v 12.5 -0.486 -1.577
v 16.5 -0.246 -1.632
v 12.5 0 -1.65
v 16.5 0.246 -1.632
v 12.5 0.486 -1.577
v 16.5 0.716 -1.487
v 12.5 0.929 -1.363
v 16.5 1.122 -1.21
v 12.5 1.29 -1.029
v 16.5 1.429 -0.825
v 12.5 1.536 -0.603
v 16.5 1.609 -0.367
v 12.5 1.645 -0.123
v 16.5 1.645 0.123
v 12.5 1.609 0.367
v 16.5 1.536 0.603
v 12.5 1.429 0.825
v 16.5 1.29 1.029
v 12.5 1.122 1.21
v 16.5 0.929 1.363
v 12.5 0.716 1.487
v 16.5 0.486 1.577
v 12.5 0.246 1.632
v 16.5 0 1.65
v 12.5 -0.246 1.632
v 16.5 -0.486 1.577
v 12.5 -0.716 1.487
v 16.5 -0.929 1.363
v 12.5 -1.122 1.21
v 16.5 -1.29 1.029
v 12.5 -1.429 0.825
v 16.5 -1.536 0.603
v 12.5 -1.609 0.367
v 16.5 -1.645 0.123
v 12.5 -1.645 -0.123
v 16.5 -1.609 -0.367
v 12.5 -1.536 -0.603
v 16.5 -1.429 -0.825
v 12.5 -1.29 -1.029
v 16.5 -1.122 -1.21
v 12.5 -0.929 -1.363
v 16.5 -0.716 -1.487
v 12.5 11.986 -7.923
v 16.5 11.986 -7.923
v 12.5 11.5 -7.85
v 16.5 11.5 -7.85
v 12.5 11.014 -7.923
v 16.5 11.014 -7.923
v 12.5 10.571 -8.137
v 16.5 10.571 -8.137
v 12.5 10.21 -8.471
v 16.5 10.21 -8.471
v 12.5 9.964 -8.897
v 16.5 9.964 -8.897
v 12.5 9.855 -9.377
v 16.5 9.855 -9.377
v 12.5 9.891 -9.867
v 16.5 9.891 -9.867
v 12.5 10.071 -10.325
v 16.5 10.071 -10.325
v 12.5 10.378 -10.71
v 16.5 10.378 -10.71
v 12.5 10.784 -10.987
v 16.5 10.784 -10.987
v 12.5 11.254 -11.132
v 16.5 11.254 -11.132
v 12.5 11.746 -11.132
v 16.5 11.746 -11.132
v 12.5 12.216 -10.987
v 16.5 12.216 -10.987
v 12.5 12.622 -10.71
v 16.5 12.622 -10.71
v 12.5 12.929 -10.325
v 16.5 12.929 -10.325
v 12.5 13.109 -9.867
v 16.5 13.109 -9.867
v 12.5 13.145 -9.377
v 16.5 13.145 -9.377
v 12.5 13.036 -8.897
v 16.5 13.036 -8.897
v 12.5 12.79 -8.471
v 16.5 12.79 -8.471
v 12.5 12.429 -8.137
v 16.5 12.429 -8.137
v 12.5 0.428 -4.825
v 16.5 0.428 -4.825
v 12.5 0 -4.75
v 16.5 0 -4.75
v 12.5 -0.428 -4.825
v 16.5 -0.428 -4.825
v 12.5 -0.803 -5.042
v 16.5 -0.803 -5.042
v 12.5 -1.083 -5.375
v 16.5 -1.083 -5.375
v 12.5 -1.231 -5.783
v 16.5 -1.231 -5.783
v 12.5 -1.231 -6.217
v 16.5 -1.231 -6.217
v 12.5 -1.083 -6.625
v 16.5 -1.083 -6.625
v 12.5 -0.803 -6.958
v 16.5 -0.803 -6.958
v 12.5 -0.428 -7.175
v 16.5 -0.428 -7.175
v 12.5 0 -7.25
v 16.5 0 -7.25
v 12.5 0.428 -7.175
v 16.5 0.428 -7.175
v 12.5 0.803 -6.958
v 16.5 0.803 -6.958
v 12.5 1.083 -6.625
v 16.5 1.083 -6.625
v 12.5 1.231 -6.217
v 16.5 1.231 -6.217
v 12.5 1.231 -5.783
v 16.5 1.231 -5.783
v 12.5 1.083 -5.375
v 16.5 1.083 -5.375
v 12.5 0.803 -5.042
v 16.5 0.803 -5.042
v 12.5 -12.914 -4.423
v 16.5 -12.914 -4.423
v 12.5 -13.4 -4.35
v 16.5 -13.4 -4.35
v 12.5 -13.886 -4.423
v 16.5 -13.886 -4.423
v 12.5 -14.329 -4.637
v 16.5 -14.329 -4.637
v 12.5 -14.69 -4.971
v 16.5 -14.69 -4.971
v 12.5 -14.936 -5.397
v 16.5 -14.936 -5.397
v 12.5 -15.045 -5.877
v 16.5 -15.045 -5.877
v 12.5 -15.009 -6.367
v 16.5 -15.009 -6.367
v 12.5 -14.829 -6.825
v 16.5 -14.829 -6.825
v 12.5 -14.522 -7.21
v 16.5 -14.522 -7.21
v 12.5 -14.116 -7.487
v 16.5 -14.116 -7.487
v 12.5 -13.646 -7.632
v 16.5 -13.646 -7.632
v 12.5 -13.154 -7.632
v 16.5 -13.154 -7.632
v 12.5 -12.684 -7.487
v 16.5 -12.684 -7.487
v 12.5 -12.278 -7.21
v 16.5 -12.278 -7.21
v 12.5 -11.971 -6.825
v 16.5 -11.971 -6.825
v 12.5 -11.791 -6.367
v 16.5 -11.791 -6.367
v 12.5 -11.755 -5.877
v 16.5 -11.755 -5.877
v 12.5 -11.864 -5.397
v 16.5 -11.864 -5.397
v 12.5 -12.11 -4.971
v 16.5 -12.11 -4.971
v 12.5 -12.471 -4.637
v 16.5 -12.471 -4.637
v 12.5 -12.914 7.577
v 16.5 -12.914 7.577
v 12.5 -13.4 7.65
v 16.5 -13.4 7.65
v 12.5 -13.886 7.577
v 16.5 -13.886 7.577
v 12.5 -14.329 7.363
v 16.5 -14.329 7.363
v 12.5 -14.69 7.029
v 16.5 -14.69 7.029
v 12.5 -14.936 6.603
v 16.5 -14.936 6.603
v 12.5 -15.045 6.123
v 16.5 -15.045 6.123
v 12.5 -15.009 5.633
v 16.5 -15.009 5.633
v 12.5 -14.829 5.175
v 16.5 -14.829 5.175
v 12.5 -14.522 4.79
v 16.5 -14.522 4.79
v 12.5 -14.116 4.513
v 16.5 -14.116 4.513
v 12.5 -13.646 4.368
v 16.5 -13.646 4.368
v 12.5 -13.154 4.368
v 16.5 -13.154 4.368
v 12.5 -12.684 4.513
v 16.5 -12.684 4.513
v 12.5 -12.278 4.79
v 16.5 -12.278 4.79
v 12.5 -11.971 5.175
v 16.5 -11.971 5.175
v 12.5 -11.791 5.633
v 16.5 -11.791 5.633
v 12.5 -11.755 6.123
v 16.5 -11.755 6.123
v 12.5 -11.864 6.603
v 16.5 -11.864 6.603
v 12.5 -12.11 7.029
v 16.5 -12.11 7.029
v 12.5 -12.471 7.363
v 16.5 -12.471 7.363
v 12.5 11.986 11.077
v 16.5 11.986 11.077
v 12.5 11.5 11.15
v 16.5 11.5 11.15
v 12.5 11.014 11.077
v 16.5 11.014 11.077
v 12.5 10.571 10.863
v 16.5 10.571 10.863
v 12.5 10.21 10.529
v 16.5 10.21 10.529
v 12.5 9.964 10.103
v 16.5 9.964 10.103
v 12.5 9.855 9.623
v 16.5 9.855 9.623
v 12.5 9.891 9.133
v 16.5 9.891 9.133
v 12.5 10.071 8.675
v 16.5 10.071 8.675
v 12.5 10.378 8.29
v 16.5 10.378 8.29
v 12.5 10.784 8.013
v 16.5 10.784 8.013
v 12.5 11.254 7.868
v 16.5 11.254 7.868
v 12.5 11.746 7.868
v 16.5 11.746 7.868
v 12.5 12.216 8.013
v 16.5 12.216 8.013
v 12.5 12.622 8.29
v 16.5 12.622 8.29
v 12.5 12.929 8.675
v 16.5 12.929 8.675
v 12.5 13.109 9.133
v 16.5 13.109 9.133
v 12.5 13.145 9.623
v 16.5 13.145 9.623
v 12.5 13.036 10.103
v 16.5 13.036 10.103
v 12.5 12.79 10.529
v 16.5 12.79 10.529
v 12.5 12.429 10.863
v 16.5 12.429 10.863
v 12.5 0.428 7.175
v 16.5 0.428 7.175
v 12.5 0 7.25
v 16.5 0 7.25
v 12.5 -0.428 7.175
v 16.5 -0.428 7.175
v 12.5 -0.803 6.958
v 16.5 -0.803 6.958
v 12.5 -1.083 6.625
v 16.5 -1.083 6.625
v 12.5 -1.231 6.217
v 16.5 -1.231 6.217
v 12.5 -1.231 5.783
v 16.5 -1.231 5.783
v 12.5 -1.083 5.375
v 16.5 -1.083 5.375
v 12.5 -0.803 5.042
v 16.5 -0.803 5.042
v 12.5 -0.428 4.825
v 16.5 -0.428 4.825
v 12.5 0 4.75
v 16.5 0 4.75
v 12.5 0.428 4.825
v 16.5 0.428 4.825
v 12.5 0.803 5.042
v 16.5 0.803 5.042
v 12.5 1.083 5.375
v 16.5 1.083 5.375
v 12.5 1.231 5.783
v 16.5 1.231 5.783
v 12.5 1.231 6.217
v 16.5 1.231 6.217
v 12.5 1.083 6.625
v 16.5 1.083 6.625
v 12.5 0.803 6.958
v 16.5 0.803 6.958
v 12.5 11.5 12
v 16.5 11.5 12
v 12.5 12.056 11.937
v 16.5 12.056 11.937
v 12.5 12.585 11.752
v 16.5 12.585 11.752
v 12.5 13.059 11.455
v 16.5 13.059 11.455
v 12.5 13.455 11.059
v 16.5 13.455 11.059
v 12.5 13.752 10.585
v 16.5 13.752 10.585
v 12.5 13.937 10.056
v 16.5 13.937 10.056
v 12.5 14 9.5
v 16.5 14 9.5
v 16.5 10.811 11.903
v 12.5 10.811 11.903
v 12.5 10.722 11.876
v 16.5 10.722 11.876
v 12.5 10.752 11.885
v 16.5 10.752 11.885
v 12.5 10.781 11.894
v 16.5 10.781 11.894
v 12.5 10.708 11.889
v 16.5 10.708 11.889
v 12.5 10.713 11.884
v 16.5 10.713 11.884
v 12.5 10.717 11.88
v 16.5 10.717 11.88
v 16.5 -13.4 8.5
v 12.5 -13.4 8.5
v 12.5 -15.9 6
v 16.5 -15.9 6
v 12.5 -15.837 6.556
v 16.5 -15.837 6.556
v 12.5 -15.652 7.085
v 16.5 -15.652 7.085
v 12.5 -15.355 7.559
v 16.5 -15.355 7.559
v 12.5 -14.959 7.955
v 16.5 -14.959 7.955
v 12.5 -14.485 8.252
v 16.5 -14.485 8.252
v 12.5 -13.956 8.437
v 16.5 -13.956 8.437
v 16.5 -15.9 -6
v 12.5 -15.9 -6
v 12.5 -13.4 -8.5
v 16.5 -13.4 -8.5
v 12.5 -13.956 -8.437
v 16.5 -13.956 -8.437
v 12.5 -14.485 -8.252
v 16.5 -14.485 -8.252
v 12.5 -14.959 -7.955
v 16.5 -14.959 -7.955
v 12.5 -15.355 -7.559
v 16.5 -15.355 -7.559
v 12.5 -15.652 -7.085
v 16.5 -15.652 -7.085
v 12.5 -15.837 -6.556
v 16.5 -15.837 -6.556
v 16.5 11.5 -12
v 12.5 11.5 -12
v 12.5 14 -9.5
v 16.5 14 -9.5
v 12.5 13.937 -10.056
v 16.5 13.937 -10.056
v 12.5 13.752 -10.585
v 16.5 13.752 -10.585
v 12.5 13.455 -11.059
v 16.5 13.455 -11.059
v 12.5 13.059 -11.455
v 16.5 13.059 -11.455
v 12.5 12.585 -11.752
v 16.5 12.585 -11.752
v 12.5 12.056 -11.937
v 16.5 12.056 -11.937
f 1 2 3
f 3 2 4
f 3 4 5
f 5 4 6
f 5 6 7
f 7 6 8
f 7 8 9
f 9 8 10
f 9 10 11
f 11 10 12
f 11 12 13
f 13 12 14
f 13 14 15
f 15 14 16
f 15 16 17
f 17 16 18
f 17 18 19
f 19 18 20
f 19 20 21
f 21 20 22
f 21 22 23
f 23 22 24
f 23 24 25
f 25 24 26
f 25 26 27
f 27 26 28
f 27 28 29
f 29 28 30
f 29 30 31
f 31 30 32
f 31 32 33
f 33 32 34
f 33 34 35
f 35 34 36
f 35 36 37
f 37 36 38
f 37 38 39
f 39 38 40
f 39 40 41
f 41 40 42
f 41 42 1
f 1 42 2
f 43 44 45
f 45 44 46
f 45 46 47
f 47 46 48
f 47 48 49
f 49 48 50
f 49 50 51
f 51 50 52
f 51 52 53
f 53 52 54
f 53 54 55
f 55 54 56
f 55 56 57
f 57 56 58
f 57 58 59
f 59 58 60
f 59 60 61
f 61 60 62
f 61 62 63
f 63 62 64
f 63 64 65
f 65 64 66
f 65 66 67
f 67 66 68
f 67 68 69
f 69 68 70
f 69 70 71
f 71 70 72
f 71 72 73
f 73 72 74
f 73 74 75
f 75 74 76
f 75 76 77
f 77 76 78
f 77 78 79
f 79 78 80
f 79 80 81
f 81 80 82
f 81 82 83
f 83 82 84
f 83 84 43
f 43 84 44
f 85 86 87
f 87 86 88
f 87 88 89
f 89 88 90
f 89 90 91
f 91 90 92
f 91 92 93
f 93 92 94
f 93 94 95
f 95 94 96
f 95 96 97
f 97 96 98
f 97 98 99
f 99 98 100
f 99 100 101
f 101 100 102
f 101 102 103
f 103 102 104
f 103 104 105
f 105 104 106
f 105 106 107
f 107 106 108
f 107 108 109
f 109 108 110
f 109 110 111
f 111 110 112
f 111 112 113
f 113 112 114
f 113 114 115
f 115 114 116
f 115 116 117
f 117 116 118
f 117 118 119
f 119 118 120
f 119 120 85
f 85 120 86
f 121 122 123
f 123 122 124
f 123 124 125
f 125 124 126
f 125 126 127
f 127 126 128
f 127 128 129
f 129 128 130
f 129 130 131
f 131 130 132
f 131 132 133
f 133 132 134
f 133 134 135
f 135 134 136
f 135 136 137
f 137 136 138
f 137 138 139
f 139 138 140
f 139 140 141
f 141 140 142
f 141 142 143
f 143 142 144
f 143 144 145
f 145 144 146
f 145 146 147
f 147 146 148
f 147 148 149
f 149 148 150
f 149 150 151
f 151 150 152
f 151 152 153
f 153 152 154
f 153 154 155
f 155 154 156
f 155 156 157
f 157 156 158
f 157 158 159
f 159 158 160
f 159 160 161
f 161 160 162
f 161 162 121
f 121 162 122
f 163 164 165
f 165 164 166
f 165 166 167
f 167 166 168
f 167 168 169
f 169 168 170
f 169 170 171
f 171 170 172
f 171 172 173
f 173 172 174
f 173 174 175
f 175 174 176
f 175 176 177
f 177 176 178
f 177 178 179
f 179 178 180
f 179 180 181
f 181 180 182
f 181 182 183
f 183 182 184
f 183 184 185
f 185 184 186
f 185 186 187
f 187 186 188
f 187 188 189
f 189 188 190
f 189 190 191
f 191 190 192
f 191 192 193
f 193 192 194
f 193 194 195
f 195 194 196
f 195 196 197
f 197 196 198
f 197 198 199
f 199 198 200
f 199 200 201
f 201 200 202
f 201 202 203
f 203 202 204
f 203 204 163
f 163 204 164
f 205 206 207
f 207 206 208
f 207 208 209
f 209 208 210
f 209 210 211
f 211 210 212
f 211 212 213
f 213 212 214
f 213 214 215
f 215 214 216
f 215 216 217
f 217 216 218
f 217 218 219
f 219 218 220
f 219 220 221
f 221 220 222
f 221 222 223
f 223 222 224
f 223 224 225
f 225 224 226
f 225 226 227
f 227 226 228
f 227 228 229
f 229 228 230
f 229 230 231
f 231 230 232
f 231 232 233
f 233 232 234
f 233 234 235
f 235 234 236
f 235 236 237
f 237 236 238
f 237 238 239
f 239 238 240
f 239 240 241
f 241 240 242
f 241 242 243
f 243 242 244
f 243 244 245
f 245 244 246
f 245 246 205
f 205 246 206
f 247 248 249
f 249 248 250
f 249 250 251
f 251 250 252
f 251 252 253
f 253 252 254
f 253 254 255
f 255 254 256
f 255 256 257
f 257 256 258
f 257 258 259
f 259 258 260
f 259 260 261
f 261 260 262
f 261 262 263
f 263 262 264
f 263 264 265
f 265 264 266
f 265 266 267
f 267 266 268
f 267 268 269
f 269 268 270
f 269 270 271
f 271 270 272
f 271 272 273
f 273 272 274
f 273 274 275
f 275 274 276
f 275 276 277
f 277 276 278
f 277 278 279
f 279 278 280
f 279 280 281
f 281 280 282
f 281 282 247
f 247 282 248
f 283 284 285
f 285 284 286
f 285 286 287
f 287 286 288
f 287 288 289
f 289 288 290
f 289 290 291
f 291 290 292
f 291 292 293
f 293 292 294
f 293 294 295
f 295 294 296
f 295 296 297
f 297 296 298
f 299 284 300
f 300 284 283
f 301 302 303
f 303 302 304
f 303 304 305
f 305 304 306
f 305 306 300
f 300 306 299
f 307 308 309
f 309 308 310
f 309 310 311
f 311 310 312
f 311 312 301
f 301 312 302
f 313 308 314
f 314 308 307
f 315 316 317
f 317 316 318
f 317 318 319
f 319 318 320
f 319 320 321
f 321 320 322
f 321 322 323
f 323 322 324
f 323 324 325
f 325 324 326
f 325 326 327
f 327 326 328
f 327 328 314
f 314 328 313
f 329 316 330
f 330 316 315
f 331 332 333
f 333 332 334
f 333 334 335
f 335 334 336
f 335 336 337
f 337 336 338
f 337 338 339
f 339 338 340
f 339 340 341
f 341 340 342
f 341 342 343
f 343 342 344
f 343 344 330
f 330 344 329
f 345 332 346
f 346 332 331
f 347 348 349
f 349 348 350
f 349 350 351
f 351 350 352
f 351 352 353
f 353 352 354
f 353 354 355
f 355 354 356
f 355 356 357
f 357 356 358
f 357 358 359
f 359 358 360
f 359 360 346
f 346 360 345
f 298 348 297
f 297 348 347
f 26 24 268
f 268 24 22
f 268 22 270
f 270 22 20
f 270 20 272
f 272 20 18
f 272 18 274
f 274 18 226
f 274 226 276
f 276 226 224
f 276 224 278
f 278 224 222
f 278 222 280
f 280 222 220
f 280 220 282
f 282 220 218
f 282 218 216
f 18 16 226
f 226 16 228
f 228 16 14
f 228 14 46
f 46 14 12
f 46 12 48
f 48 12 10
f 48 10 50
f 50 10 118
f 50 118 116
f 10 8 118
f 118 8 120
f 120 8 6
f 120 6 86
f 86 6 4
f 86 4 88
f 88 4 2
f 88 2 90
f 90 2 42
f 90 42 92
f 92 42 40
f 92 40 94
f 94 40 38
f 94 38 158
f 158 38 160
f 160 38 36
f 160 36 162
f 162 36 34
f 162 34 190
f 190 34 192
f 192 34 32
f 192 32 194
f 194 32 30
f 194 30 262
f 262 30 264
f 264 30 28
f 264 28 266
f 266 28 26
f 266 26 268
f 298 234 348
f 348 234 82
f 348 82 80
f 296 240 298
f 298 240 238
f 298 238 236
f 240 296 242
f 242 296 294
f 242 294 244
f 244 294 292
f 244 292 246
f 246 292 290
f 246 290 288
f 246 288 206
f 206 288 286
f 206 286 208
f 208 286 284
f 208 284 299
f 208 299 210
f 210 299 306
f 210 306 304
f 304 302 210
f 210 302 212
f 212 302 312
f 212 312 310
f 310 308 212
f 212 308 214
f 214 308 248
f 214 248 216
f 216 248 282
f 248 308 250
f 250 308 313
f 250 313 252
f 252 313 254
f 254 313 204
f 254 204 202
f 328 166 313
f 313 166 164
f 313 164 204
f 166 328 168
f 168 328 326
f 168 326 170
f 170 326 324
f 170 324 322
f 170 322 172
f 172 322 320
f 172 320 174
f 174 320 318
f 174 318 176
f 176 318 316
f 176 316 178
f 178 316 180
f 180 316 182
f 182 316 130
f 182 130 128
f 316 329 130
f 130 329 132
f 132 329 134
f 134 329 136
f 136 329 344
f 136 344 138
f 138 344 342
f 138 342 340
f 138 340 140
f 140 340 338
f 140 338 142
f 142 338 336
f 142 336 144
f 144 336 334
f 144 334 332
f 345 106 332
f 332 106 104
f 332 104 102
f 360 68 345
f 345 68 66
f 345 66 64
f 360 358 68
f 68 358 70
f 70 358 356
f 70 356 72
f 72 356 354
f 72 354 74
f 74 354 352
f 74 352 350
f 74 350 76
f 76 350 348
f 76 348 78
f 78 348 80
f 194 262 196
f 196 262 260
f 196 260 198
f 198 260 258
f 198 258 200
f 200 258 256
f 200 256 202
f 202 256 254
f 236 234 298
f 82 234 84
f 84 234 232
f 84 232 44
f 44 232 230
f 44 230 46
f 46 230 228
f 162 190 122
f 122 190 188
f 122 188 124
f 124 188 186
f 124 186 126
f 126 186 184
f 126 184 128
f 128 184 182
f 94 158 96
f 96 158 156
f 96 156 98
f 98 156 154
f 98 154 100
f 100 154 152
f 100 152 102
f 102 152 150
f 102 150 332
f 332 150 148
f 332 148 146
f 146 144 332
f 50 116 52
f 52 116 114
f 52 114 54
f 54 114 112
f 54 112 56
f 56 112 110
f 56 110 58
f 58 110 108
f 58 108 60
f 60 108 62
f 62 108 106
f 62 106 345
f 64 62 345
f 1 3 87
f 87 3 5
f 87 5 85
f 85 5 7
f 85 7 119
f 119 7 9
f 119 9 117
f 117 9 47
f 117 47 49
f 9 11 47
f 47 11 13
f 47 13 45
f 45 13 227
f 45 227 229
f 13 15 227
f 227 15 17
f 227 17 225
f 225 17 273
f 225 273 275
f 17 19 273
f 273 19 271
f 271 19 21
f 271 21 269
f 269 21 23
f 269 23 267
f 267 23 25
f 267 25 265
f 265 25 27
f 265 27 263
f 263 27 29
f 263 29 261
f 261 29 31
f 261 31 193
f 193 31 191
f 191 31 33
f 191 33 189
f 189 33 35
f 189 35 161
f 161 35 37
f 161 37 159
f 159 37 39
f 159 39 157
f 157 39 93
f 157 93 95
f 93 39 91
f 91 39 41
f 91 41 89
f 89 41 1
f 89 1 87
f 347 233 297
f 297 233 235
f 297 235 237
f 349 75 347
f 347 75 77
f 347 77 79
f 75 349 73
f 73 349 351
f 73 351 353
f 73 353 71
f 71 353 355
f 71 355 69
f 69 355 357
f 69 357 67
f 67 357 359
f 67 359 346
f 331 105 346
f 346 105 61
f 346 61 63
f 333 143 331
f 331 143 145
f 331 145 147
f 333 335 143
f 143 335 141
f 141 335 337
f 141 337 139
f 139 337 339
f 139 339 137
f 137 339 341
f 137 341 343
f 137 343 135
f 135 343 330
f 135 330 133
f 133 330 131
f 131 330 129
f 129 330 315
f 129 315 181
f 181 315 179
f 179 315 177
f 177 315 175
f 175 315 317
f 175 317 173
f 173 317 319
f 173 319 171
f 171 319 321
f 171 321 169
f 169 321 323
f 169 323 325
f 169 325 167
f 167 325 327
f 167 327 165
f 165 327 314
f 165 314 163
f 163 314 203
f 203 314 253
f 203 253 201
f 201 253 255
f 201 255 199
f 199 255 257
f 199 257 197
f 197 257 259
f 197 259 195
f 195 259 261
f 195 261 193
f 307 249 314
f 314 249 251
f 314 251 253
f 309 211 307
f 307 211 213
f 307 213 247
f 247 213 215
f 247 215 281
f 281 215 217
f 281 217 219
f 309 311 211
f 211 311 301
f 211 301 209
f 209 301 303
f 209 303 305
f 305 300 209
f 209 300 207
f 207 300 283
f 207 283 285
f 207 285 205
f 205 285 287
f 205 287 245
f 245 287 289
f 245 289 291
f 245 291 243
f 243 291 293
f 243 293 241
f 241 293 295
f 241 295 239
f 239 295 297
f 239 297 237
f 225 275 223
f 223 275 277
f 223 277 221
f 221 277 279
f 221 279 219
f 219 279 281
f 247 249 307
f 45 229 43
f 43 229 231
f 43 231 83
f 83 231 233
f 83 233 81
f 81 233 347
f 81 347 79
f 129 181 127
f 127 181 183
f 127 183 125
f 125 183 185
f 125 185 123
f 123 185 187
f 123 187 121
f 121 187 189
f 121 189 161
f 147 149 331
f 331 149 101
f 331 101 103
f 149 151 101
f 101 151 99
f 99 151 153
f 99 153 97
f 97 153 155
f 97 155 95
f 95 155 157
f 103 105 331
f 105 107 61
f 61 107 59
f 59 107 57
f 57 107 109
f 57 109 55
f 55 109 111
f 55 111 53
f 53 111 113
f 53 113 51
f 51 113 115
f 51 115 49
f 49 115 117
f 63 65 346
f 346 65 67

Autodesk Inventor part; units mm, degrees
ref_plane "YZ Plane" through (0, 0, 0) normal (1, 0, 0) x (0, 1, 0)
ref_plane "XZ Plane" through (0, 0, 0) normal (0, 1, 0) x (-1, 0, 0)
ref_plane "XY Plane" through (0, 0, 0) normal (0, 0, 1) x (1, 0, 0)
sketch "スケッチ2" plane through (0, 0, 0) normal (0, 1, 0) x (-1, 0, 0)
  line L0 (-32.5, -11.25) -> (32.5, -11.25)
  line L1 (32.5, -11.25) -> (32.5, 11.25)
  line L2 (32.5, 11.25) -> (-32.5, 11.25)
  line L3 (-32.5, 11.25) -> (-32.5, -11.25)
  line L4 (-32.5, -11.25) -> (32.5, 11.25) construction
  line L5 (32.5, -11.25) -> (-32.5, 11.25) construction
  line L6 (-30, -8.75) -> (30, -8.75)
  line L7 (30, -8.75) -> (30, 8.75)
  line L8 (30, 8.75) -> (-30, 8.75)
  line L9 (-30, 8.75) -> (-30, -8.75)
  line L10 (-30, -8.75) -> (30, 8.75) construction
  line L11 (30, -8.75) -> (-30, 8.75) construction
  circle A0 centre (30, 8.75) radius 2.5
  circle A1 centre (30, -8.75) radius 2.5
  circle A2 centre (-30, 8.75) radius 2.5
  circle A3 centre (-30, -8.75) radius 2.5
  line L12 (-115, -18.25) -> (115, -18.25)
  line L13 (115, -18.25) -> (115, 18.25)
  line L14 (115, 18.25) -> (-115, 18.25)
  line L15 (-115, 18.25) -> (-115, -18.25)
  line L16 (-115, -18.25) -> (115, 18.25) construction
  line L17 (115, -18.25) -> (-115, 18.25) construction
  line L18 (-95, -18.25) -> (95, -18.25)
  line L19 (95, -18.25) -> (95, 18.25)
  line L20 (95, 18.25) -> (-95, 18.25)
  line L21 (-95, 18.25) -> (-95, -18.25)
  line L22 (-95, -18.25) -> (95, 18.25) construction
  line L23 (95, -18.25) -> (-95, 18.25) construction
  point P0 (0, 0)
  dimension "d10" = 65
  dimension "d11" = 22.5
  dimension "d12" = 60
  dimension "d13" = 17.5
  dimension "d14" = 230
  dimension "d15" = 36.5
  dimension "d16" = 190
sketch "スケッチ4" plane through (0, 0, 0) normal (1, 0, 0) x (0, 1, 0)
  point P0 (0, 0)
sketch "スケッチ5" plane through (0, 0, 0) normal (1, 0, 0) x (0, 1, 0)
  circle A0 centre (0, 0) radius 18.25
  line L0 (0, 0) -> (0, 6)
  line L1 (0, 6) -> (0, -6)
  circle A1 centre (0, 6) radius 3
  circle A2 centre (0, -6) radius 9
  circle A3 centre (0, 6) radius 9
  circle A4 centre (0, -6) radius 3
  line L2 (0, 6) -> (5.2915, 0)
  circle A5 centre (5.2915, 0) radius 5
  circle A6 centre (5.2915, 0) radius 4.5
  circle A7 centre (5.2915, 0) radius 5.5
  line L3 (0, 0) -> (0, 11.25)
  line L4 (0, 11.25) -> (0, -11.25)
  line L5 (5.2915, 5.5) -> (5.2915, -5.5)
  line L6 (0, 11.25) -> (-1.2, 11.25)
  line L7 (-1.2, 11.25) -> (-1.2, -11.25)
  line L8 (-1.2, -11.25) -> (0, -11.25)
  line L9 (-1.2, 11.25) -> (-9.2, 11.25)
  line L10 (-1.2, -11.25) -> (-9.2, -11.25)
  line L11 (-9.2, -11.25) -> (-9.2, 11.25)
  line L12 (-9.2, 11.25) -> (-10.4, 11.25)
  line L13 (-10.4, 11.25) -> (-10.4, -11.25)
  line L14 (-10.4, -11.25) -> (-9.2, -11.25)
  circle A8 centre (0, 0) radius 16
  line L15 (0, 11.25) -> (1.5, 11.25)
  line L16 (1.5, 11.25) -> (1.5, -11.25)
  line L17 (1.5, -11.25) -> (0, -11.25)
  line L18 (5.2915, 5.5) -> (1.5, 5.5)
  line L19 (5.2915, -5.5) -> (1.5, -5.5)
  circle A9 centre (5.2915, 0) radius 6.6802
  point P0 (0, 1.5)
  point P1 (0, -1.5)
  point P2 (1.5, -3.9843)
  point P3 (1.5, 3.9843)
  dimension "d28" = 36.5
  dimension "d29" = 6
  dimension "d30" = 12
  dimension "d31" = 6
  dimension "d32" = 18
  dimension "d33" = 8
  dimension "d34" = 9
  dimension "d35" = 11
  dimension "d36" = 11.25
  dimension "d37" = 22.5
  dimension "d39" = 1.2
  dimension "d40" = 8
  dimension "d41" = 1.2
  dimension "d42" = 32
  dimension "d43" = 1.5
ref_plane "作業平面1" through (16.5, 5.2915, 0) normal (1, 0, 0) x (0, 0, 1)
sketch "スケッチ6" plane through (16.5, 5.2915, 0) normal (1, 0, 0) x (0, 0, 1)
  line L0 (0, 5.2915) -> (6, 5.2915)
  line L1 (-11.25, 5.2915) -> (11.25, 5.2915) projected
  line L2 (6, 5.2915) -> (-6, 5.2915)
  circle A0 centre (6, 5.2915) radius 1.25
  circle A1 centre (-6, 5.2915) radius 1.25
  circle A2 centre (0, 5.2915) radius 16
  circle A3 centre (0, 0) radius 5
  line L3 (0, 0) -> (0, 3)
  line L4 (0, 3) -> (0, -5.5)
  arc A4 (-5.5, 0) -> (5.5, 0) centre (0, 0) ccw projected
  line L5 (0, 3) -> (1, 3)
  line L6 (1, 3) -> (-1, 3)
  line L7 (-1, 3) -> (-1, -5.4083)
  line L8 (1, 3) -> (1, -5.4083)
  circle A5 centre (6, 5.2915) radius 9
  circle A6 centre (-6, 5.2915) radius 9
  line L9 (0, 5.2915) -> (0, -2.7085)
  circle A7 centre (0, -2.7085) radius 8
  circle A8 centre (6, 5.2915) radius 10
  circle A9 centre (-6, 5.2915) radius 10
  line L10 (0, 5.2915) -> (0, -5.7085)
  line L11 (0, -5.7085) -> (-11.619, -5.7085)
  line L12 (0, -5.7085) -> (11.619, -5.7085)
  line L13 (0, -5.7085) -> (9.5, -5.7085)
  line L14 (9.5, -5.7085) -> (-9.5, -5.7085)
  circle A10 centre (0, 5.2915) radius 18
  line L15 (1, -5.4083) -> (1, -8.2085)
  line L16 (-1, -5.4083) -> (-1, -8.2085)
  line L17 (0, 5.2915) -> (0, 6.4915)
  line L18 (0, 6.4915) -> (0, 14.4915)
  line L19 (0, 14.4915) -> (0, 15.6915)
  line L20 (0, 15.6915) -> (-11.25, 15.6915)
  line L21 (-11.25, 15.6915) -> (11.25, 15.6915)
  line L22 (11.25, 15.6915) -> (11.25, 14.4915)
  line L23 (11.25, 14.4915) -> (0, 14.4915)
  line L24 (-11.25, 14.4915) -> (-11.25, 15.6915)
  line L25 (0, 14.4915) -> (-11.25, 14.4915)
  line L26 (0, 15.6915) -> (8.75, 15.6915)
  line L27 (8.75, 15.6915) -> (-8.75, 15.6915)
  line L28 (11.25, 15.6915) -> (11.25, 17.1915)
  line L29 (11.25, 17.1915) -> (-11.25, 17.1915)
  line L30 (-11.25, 17.1915) -> (-11.25, 15.6915)
  line L31 (6, 17.1915) -> (6, 18.6915)
  line L32 (-6, 17.1915) -> (-6, 18.6915)
  circle A11 centre (6, 18.6915) radius 2.5
  circle A12 centre (-6, 18.6915) radius 2.5
  line L33 (6, 21.1915) -> (-6, 21.1915)
  line L34 (9.5, -5.7085) -> (12, -5.7085)
  line L35 (-9.5, -5.7085) -> (-12, -5.7085)
  line L36 (6, 18.6915) -> (8.5, 18.6915)
  line L37 (-6, 18.6915) -> (-8.5, 18.6915)
  circle A13 centre (0, 0) radius 4.5
  circle A14 centre (-6, 5.2915) radius 1.5
  circle A15 centre (6, 5.2915) radius 1.5
  circle A16 centre (6, 18.6915) radius 1.65
  circle A17 centre (-6, 18.6915) radius 1.65
  line L38 (9.5, -5.7085) -> (9.5, -6.2085)
  line L39 (9.5, -6.2085) -> (-9.5, -6.2085)
  line L40 (-9.5, -6.2085) -> (-9.5, -5.7085)
  circle A18 centre (-9.5, -6.2085) radius 1.65
  circle A19 centre (9.5, -6.2085) radius 1.65
  circle A20 centre (9.5, -6.2085) radius 2.5
  circle A21 centre (-9.5, -6.2085) radius 2.5
  line L41 (-12, -6.2085) -> (-8.5, 18.6915)
  line L42 (12, -6.2085) -> (8.5, 18.6915)
  line L43 (9.5, -8.7085) -> (-9.5, -8.7085)
  line L44 (1, -8.7085) -> (1, -8.0358)
  line L45 (-1, -8.7085) -> (-1, -8.2085)
  point P0 (1, -4.3875)
  point P1 (-1, -4.3875)
  point P2 (-4.4567, 20.6583)
  point P3 (-8.495, 18.8501)
  point P4 (4.4567, 20.6583)
  point P5 (8.495, 18.8501)
  point P6 (1.7861, 21.1915)
  point P7 (-1.7861, 21.1915)
  point P8 (11.9031, -5.5193)
  point P9 (11.8759, -5.4306)
  point P10 (11.8887, -5.4164)
  dimension "d54" = 6
  dimension "d55" = 12
  dimension "d56" = 2.5
  dimension "d57" = 2.5
  dimension "d58" = 32
  dimension "d59" = 10
  dimension "d60" = 3
  dimension "d61" = 1
  dimension "d62" = 2
  dimension "d65" = 18
  dimension "d66" = 18
  dimension "d67" = 8
  dimension "d68" = 11
  dimension "d69" = 9.5
  dimension "d70" = 19
  dimension "d73" = 36
  dimension "d76" = 1.2
  dimension "d77" = 8
  dimension "d78" = 1.2
  dimension "d79" = 8.75
  dimension "d80" = 17.5
  dimension "d81" = 1.5
  dimension "d82" = 1.5
  dimension "d83" = 5
  dimension "d84" = 5
  dimension "d97" = 3
  dimension "d98" = 3
  dimension "d109" = 3.3
  dimension "d110" = 3.3
  dimension "d111" = 0.5
  dimension "d112" = 3.3
  dimension "d113" = 3.3
  dimension "d114" = 5
  dimension "d115" = 5
extrude "押し出し11" add sketch "スケッチ6" against normal blind 4 contours L17 L18 A6 L0 | A7 A5 L1 | A7 A6 A3 L9 | L0 A6 A7 | L9 A3 A5 A7 | L1 A5 L18 L17 | A6 A5 A9 L0 | L0 A9 A7 A6 | A5 A7 A8 L1 | L1 A8 A6 A5 | L9 A13 A5 A3 | A3 A6 A13 L9 | A7 A9 A3 A6 | A5 A3 A8 A7 | A9 A5 L42 L1 A15 L0 | L0 A15 L1 L42 A5 A7 A9 | L18 A9 A5 | A6 A8 L18 | A8 A7 A6 L41 L1 A14 | L1 A14 L41 A6 A8 | A3 A9 A13 A6 | A5 A13 A8 A3 | A13 A6 L8 L5 L9 | L9 L6 L7 A5 A13 | A7 A5 A3 A9 | A8 A3 A6 A7 | A15 L1 A0 L0 | L0 A0 L1 A15 | A9 A8 L23 L42 A5 | A6 L41 L25 A9 A8 | L18 L23 A8 | A9 L25 L18 | A14 L1 A1 | L1 A1 A14 | A3 A5 A13 A9 | A13 A9 L8 A6 | A8 A13 A6 A3 | A5 L7 A8 A13 | L5 L8 A6 L4 L3 | L3 L4 A5 L7 L6 | A7 A21 A9 L41 A6 | A6 A4 A9 A21 A7 | L23 L19 L21 L42 A8 | A8 L42 L23 | L25 L41 A9 | A9 L41 L20 L19 L25 | A13 A5 L8 A9 | L8 A9 A5 A6 | A6 A13 A9 A3 | A3 A9 A4 A6 | A8 L7 A6 A13 | A5 A6 A8 L7 | A7 A20 A8 A4 A5 | A5 L42 A8 A20 A7 | A21 A9 A7 | A7 A9 A21 | L20 L41 L29 A12 A11 L42 L21 | A5 A4 A8 A3 | A3 A8 A13 A5 | L8 A5 A9 | A5 A9 L4 | L4 A8 A6 | A9 A13 L7 A3 | A3 L7 A4 A9 | A6 L7 A9 A13 | A8 A6 L7 | A20 A8 A7 | A7 A8 A20 | A9 A21 A2 L41 | A4 L16 L11 A21 A9 | A9 A21 L11 A7 | A7 L11 A18 A2 A21 A9 | A8 A4 L8 A3 | A3 L8 A13 A8 | A13 A8 L8 A5 | L8 A8 A9 A5 | A8 L8 A13 L4 | A9 L7 A6 A8 | L4 A13 L7 A9 | L7 A13 L4 A3 | A3 L4 A4 L7 | A9 L7 A13 | A8 A20 L12 L15 A4 | L42 A2 A20 A8 | A8 A20 A2 L12 A19 A7 | A7 L12 A20 A8 | A2 A21 L41 | A4 L10 L11 L16 | L11 A21 L39 A7 | A7 L39 A18 L11 | L11 L16 L39 A21 | A2 L35 L41 A21 | L29 A11 L42 | L41 A12 L29 | L8 A4 L4 A3 | A3 L4 A13 L8 | A13 L8 A8 | L15 L12 L10 A4 | L12 A19 L39 A7 | A7 L39 A20 L12 | A20 L42 L34 A2 | A20 L39 L15 L12 | L11 L12 L15 L39 L16 | L39 A21 A7 | A7 A21 A2 A18 L39 | L39 L16 L45 L43 A7 A21 | L11 A18 A2 | A2 A18 A21 L41 L35 | A11 L29 A16 | L29 A16 L36 A11 | L36 A16 A2 A11 | A12 L37 A17 L29 | L29 A17 A12 | A12 A2 A17 L37 | L39 A19 A2 A20 A7 | A7 A20 L39 | L34 L42 A20 A2 A19 | A2 A19 L12 | A20 A7 L43 L44 L15 L39 | L39 L15 L44 L43 L45 L16 | A7 L43 A2 A21 | A2 A16 A11 | A11 A2 A16 L29 | L29 A12 A2 L33 A11 | L29 A17 A2 A12 | A12 A2 A17 | A20 A2 L43 A7 | A2 L43 A21 | A11 A2 L33 | L33 A2 A12 | A20 L43 A2 picked at (5.1751, 14.7127) picked at (-5.1751, 14.7127)
hole "穴2" at (16.5, 0, 0) direction (-1, 0, 0) diameter 3.3 end through all
properties part number "ikafly1b"
